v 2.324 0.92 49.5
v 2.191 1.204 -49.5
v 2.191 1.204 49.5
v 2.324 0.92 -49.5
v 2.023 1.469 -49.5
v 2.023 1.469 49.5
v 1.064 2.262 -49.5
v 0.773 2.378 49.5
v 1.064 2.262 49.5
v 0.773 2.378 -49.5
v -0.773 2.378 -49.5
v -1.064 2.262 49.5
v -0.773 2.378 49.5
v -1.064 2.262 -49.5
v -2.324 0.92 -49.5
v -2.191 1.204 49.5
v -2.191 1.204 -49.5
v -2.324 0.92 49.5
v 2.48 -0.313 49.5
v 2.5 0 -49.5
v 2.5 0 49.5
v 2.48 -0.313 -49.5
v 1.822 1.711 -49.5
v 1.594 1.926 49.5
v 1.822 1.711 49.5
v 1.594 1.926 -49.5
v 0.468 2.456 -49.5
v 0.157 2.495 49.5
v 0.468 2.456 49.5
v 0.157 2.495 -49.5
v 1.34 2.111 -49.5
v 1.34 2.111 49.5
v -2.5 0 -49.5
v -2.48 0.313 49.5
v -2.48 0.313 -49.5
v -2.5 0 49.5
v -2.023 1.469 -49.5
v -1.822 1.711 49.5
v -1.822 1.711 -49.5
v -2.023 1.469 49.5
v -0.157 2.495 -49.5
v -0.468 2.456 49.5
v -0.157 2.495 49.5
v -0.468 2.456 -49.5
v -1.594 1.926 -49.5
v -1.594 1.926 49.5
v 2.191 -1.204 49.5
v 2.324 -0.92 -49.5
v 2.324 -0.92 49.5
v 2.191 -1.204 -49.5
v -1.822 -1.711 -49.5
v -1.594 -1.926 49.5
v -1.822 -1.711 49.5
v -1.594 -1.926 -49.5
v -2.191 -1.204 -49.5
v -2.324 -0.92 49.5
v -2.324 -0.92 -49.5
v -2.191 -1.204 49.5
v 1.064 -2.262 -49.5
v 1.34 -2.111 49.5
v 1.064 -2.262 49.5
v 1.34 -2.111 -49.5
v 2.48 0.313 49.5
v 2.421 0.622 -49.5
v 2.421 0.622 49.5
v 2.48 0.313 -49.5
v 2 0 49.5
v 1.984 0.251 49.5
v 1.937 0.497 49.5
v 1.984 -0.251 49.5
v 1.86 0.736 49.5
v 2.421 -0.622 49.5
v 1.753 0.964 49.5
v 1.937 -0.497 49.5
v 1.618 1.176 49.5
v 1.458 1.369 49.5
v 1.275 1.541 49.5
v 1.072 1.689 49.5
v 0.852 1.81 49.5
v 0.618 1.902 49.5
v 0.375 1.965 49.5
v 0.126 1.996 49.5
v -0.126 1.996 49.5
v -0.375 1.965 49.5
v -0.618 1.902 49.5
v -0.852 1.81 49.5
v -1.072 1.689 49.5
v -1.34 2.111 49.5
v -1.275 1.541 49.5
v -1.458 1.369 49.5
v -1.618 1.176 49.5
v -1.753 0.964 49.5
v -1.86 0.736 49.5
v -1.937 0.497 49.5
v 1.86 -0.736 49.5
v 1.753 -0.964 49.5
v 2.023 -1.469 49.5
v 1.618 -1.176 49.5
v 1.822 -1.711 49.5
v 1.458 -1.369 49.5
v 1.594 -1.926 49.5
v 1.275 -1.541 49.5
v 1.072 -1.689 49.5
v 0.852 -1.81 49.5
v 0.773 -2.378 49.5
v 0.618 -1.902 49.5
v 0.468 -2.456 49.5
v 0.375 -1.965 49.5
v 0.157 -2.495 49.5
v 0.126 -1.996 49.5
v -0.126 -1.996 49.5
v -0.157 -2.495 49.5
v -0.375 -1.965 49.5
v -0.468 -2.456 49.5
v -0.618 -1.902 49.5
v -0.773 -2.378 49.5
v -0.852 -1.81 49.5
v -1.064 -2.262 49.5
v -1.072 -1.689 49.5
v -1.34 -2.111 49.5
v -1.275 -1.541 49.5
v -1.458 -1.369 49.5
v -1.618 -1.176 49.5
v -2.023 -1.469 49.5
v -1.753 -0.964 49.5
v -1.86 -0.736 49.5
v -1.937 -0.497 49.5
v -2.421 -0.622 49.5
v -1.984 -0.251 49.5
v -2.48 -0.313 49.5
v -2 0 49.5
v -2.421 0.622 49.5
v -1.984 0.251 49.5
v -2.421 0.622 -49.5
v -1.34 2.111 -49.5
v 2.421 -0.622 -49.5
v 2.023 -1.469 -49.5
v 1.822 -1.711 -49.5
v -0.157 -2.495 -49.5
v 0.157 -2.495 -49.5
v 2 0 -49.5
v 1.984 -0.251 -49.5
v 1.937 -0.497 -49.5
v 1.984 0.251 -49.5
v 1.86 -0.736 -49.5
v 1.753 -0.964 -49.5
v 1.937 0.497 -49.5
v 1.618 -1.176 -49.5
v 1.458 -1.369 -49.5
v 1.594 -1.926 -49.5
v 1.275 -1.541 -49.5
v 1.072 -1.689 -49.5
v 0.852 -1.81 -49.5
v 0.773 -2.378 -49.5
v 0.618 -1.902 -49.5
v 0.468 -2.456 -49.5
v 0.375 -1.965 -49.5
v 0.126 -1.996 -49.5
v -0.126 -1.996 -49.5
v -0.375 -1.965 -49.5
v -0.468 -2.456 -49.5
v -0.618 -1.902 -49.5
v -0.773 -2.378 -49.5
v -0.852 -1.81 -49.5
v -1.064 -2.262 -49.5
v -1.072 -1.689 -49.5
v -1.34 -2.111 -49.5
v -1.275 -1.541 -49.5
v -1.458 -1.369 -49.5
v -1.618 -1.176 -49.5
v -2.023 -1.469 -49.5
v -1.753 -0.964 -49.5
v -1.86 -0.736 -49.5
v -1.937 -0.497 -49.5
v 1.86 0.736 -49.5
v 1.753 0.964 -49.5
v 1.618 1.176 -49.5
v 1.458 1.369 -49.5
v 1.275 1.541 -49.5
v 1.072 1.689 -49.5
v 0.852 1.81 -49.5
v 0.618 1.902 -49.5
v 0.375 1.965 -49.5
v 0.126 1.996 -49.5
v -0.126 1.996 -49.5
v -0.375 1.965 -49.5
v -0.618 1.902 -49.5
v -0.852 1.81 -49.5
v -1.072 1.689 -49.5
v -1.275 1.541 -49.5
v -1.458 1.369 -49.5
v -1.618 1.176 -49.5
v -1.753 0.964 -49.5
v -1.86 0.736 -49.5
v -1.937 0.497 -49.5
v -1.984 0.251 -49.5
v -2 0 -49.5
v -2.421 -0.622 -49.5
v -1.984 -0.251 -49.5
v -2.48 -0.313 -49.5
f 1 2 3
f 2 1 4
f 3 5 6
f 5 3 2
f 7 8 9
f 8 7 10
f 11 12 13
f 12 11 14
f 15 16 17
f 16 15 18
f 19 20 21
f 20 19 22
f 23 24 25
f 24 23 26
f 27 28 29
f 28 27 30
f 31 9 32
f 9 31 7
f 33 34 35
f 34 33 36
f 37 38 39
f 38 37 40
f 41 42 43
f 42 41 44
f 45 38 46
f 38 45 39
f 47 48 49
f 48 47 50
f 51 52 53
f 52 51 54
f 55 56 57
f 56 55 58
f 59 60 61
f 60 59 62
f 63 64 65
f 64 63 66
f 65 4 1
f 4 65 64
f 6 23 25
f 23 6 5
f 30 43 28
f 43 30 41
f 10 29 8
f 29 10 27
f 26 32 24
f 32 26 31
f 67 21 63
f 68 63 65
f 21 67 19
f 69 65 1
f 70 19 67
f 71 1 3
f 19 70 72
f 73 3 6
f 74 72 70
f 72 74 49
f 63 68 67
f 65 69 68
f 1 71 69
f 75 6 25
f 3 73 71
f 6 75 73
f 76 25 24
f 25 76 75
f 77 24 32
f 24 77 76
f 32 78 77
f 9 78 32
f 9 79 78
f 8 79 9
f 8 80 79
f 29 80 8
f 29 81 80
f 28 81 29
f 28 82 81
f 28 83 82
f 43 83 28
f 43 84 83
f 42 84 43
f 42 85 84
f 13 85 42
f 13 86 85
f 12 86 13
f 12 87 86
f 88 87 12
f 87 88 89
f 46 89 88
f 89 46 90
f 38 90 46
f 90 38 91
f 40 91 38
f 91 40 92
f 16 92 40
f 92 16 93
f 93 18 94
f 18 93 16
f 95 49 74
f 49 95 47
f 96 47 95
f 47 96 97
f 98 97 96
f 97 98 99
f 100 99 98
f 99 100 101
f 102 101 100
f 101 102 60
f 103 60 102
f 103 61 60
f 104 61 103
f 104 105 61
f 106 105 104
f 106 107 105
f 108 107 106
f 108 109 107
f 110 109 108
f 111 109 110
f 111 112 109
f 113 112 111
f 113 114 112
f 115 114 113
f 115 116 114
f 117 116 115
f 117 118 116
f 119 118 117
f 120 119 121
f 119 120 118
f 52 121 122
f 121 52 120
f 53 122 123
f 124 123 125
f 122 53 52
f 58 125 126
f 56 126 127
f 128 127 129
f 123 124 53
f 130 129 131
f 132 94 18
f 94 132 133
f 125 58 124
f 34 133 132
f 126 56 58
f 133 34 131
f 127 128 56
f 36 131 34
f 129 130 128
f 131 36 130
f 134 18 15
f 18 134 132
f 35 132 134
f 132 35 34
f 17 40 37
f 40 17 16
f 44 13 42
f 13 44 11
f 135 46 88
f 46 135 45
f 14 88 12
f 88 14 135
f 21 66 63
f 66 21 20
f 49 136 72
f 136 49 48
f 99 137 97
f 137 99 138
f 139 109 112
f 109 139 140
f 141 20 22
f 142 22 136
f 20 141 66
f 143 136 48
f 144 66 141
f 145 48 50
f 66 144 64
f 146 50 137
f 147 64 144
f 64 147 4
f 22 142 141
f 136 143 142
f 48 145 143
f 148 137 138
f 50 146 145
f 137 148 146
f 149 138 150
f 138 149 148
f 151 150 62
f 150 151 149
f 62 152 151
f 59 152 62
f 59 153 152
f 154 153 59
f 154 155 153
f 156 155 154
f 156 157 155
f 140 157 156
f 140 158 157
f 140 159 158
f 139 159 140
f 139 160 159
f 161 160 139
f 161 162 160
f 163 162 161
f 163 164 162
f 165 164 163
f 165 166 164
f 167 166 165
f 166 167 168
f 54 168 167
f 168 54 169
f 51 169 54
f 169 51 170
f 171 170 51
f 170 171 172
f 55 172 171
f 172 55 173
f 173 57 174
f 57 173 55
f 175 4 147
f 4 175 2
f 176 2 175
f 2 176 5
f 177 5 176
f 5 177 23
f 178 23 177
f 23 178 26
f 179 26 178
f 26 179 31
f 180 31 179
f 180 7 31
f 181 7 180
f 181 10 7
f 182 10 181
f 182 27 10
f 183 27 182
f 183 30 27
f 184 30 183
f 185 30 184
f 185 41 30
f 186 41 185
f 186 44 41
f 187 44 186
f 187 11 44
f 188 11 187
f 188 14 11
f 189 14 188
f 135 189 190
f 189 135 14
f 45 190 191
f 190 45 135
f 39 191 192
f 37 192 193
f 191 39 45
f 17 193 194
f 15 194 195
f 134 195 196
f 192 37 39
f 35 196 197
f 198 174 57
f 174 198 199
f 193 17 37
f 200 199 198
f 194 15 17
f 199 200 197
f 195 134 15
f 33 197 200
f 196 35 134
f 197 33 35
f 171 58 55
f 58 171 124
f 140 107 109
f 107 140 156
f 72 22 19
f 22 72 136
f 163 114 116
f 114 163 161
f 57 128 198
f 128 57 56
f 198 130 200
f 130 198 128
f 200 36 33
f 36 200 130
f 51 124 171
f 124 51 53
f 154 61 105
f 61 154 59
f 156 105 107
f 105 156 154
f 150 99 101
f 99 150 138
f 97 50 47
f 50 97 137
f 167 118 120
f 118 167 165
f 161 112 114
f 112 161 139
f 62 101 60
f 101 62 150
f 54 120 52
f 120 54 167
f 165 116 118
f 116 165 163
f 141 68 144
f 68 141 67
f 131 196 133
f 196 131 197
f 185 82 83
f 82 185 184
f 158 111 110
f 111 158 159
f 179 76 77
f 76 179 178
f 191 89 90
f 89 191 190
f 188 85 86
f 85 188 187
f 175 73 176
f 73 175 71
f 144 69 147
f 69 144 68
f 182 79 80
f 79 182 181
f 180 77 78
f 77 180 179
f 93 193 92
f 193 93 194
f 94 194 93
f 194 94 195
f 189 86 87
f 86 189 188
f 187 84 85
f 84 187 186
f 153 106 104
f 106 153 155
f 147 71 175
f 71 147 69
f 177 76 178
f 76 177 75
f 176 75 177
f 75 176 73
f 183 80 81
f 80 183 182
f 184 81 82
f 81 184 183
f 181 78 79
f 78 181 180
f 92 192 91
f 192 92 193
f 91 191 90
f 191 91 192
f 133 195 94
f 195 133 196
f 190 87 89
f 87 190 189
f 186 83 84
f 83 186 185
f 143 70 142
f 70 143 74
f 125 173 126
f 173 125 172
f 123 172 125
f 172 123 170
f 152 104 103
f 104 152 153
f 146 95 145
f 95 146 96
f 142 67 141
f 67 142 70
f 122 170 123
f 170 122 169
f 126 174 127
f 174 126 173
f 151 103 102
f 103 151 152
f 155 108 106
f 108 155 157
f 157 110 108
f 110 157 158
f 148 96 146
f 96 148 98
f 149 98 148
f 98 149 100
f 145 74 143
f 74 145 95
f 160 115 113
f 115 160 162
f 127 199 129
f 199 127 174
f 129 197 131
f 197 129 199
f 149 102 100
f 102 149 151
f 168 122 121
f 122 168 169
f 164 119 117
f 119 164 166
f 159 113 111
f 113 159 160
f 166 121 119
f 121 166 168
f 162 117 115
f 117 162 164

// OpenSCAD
$fn = 50;


difference() {
	union() {
		translate(v = [0, 0, -49.5000000000]) {
			cylinder(h = 99, r = 2.5000000000);
		}
	}
	union() {
		translate(v = [0, 0, -100.0000000000]) {
			cylinder(h = 200, r = 2);
		}
	}
}
